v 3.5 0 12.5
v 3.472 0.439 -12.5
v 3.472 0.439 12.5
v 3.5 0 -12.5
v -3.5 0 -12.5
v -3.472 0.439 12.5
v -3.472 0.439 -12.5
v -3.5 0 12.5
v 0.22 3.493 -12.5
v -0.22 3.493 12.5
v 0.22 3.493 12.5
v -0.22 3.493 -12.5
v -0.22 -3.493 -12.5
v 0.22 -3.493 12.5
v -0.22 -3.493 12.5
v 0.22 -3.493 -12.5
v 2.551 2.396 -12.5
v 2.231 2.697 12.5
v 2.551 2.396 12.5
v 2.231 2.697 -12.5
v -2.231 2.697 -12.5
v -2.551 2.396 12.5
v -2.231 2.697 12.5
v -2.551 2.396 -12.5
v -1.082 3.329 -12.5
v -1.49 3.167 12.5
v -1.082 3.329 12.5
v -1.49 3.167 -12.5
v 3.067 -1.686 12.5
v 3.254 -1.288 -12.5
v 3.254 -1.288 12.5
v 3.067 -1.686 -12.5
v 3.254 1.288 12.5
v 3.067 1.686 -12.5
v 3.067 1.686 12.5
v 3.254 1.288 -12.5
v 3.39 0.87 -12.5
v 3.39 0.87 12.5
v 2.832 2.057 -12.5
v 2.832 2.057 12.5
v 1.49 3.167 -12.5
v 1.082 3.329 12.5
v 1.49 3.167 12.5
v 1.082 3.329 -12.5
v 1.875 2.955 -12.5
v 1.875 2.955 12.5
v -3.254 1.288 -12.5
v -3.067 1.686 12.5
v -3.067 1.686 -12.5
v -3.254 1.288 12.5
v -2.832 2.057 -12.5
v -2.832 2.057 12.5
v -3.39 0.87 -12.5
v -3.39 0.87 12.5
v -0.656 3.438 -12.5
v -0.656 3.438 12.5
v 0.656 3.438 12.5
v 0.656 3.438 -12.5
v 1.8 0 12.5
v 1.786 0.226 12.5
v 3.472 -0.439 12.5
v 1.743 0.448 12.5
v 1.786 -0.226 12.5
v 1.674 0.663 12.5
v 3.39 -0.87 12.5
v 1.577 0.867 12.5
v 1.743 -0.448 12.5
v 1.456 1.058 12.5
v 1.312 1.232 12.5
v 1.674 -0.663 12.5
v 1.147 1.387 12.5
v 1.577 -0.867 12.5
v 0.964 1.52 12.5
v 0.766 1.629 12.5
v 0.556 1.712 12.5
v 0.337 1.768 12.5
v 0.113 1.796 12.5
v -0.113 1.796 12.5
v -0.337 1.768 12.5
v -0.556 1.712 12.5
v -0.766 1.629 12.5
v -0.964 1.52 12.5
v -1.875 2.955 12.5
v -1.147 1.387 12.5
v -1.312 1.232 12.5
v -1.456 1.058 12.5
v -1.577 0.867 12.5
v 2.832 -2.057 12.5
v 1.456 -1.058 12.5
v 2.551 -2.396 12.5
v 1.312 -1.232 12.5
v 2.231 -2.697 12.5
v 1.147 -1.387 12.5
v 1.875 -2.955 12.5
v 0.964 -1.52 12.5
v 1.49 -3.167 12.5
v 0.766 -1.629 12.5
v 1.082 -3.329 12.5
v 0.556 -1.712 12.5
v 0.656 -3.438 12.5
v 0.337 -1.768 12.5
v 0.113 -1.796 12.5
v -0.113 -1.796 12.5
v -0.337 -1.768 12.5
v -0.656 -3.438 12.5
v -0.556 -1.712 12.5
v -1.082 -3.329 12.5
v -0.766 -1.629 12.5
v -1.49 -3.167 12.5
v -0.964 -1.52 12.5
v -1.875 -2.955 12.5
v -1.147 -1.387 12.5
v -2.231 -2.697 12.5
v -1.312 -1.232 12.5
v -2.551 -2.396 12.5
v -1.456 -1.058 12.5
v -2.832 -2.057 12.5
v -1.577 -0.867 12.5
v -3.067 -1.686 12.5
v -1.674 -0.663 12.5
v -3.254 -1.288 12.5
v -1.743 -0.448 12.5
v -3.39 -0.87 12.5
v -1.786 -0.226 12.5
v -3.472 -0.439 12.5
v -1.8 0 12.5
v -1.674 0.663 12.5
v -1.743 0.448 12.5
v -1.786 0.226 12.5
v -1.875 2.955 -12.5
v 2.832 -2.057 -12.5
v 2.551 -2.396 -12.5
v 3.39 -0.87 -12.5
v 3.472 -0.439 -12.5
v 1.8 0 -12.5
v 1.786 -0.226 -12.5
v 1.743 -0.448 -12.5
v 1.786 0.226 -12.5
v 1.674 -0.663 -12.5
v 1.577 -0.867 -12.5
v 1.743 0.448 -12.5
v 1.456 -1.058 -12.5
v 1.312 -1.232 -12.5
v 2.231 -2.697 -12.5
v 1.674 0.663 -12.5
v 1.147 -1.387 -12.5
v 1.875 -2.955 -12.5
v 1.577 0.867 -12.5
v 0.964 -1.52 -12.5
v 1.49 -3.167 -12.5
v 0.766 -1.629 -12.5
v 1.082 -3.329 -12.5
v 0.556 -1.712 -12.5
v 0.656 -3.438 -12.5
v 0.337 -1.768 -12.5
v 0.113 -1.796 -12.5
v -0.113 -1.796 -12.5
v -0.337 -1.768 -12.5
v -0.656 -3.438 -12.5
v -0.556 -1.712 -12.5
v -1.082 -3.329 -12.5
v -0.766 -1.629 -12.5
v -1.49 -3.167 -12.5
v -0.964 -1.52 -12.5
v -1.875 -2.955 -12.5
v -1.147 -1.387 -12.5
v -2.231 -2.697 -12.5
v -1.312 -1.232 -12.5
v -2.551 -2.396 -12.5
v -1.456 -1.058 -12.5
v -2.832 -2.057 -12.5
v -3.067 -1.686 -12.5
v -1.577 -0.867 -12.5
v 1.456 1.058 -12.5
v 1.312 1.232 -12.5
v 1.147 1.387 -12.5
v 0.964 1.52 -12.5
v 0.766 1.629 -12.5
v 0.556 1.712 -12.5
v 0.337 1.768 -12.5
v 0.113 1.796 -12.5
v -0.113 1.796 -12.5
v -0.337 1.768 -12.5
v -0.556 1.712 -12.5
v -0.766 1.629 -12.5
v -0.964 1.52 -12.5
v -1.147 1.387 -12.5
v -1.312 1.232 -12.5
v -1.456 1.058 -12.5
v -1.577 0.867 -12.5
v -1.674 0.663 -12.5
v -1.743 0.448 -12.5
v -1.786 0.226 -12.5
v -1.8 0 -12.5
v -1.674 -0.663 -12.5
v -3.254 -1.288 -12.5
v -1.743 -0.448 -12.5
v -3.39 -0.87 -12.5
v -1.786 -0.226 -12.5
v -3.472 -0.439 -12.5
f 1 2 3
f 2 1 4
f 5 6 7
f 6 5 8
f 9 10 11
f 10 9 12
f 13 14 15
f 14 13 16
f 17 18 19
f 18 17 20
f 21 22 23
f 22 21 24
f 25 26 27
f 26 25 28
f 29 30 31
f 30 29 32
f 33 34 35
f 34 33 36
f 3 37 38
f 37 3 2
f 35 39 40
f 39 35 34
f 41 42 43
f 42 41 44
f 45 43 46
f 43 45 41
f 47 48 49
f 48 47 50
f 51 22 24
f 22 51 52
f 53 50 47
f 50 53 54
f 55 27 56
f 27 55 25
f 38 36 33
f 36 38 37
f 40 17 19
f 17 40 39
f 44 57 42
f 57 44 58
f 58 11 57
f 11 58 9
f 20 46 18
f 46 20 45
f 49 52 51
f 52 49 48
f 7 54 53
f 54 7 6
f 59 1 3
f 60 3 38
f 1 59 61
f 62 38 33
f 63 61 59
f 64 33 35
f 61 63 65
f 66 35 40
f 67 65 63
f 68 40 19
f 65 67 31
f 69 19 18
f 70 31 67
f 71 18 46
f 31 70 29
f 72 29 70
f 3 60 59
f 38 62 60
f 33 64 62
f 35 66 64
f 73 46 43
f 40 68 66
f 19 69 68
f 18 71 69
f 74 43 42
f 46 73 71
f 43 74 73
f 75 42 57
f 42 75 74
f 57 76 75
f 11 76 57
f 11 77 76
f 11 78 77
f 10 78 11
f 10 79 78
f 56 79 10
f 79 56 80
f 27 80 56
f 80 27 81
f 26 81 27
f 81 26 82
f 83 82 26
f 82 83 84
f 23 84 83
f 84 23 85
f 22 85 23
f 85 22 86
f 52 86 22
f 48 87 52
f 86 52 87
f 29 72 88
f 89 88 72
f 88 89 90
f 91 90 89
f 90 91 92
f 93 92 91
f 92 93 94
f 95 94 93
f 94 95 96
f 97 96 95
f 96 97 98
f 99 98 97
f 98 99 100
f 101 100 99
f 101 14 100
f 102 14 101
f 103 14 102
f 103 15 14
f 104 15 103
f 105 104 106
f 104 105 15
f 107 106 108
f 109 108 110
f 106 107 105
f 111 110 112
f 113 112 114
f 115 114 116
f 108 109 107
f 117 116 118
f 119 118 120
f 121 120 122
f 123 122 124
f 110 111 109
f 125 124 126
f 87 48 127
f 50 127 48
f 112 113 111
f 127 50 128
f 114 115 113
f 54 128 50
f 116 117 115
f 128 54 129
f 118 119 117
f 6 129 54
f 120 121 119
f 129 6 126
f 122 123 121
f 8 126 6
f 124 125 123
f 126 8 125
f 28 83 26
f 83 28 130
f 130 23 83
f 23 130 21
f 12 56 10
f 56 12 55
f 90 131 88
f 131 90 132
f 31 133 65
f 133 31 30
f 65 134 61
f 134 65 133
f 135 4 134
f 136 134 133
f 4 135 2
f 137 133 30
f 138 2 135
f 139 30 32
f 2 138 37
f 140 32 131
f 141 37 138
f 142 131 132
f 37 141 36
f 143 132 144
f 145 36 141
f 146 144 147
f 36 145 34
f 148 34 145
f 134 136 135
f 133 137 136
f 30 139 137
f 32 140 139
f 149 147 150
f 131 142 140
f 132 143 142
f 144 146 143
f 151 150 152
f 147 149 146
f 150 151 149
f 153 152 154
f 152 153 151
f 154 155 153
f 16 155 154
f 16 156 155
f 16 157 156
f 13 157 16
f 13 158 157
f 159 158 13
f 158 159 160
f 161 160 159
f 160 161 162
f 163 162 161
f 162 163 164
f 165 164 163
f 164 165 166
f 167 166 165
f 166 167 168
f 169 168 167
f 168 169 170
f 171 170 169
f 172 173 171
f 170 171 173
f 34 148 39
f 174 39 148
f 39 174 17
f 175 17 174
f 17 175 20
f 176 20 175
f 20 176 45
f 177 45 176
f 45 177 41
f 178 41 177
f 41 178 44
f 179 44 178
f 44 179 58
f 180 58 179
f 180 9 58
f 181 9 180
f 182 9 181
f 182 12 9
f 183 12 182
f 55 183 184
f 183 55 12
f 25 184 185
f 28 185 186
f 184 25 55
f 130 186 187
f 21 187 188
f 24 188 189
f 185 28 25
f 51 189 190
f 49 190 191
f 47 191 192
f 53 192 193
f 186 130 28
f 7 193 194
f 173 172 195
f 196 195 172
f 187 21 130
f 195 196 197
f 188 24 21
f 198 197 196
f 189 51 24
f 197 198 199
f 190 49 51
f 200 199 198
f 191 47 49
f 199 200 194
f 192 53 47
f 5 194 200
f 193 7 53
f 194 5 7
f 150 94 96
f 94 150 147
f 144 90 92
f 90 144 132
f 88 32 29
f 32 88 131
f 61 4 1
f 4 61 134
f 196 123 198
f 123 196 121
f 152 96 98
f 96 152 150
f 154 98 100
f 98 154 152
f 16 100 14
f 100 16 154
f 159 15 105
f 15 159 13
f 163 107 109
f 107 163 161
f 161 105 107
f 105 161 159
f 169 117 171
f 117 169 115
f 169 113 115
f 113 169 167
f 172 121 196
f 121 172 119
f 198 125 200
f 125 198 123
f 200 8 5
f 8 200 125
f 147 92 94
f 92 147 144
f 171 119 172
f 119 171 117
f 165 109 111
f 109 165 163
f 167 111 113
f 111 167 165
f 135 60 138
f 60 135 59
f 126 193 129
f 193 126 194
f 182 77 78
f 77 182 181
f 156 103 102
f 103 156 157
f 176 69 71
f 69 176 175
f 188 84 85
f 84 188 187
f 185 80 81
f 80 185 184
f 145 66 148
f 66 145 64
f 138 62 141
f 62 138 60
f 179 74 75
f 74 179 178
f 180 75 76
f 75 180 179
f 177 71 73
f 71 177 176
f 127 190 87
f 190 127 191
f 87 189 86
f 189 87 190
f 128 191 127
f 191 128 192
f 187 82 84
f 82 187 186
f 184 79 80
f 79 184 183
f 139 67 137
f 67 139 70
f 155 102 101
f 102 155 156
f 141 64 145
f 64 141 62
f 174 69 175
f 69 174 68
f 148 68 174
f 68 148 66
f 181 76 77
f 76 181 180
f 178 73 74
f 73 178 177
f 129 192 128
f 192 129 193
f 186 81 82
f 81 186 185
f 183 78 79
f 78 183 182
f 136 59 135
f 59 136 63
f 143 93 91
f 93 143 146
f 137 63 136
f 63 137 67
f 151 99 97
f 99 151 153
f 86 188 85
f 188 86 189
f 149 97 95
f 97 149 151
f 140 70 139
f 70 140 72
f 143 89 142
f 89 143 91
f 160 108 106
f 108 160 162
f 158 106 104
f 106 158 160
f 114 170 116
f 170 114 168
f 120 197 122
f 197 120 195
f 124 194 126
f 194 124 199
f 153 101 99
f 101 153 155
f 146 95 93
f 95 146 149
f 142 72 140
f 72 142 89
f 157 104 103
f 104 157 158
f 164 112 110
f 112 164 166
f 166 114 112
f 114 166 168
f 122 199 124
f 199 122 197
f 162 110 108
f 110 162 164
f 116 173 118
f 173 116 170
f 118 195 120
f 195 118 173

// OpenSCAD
$fn = 50;


difference() {
	union() {
		translate(v = [0, 0, -12.5000000000]) {
			cylinder(h = 25, r = 3.5000000000);
		}
	}
	union() {
		translate(v = [0, 0, -100.0000000000]) {
			cylinder(h = 200, r = 1.8000000000);
		}
	}
}
